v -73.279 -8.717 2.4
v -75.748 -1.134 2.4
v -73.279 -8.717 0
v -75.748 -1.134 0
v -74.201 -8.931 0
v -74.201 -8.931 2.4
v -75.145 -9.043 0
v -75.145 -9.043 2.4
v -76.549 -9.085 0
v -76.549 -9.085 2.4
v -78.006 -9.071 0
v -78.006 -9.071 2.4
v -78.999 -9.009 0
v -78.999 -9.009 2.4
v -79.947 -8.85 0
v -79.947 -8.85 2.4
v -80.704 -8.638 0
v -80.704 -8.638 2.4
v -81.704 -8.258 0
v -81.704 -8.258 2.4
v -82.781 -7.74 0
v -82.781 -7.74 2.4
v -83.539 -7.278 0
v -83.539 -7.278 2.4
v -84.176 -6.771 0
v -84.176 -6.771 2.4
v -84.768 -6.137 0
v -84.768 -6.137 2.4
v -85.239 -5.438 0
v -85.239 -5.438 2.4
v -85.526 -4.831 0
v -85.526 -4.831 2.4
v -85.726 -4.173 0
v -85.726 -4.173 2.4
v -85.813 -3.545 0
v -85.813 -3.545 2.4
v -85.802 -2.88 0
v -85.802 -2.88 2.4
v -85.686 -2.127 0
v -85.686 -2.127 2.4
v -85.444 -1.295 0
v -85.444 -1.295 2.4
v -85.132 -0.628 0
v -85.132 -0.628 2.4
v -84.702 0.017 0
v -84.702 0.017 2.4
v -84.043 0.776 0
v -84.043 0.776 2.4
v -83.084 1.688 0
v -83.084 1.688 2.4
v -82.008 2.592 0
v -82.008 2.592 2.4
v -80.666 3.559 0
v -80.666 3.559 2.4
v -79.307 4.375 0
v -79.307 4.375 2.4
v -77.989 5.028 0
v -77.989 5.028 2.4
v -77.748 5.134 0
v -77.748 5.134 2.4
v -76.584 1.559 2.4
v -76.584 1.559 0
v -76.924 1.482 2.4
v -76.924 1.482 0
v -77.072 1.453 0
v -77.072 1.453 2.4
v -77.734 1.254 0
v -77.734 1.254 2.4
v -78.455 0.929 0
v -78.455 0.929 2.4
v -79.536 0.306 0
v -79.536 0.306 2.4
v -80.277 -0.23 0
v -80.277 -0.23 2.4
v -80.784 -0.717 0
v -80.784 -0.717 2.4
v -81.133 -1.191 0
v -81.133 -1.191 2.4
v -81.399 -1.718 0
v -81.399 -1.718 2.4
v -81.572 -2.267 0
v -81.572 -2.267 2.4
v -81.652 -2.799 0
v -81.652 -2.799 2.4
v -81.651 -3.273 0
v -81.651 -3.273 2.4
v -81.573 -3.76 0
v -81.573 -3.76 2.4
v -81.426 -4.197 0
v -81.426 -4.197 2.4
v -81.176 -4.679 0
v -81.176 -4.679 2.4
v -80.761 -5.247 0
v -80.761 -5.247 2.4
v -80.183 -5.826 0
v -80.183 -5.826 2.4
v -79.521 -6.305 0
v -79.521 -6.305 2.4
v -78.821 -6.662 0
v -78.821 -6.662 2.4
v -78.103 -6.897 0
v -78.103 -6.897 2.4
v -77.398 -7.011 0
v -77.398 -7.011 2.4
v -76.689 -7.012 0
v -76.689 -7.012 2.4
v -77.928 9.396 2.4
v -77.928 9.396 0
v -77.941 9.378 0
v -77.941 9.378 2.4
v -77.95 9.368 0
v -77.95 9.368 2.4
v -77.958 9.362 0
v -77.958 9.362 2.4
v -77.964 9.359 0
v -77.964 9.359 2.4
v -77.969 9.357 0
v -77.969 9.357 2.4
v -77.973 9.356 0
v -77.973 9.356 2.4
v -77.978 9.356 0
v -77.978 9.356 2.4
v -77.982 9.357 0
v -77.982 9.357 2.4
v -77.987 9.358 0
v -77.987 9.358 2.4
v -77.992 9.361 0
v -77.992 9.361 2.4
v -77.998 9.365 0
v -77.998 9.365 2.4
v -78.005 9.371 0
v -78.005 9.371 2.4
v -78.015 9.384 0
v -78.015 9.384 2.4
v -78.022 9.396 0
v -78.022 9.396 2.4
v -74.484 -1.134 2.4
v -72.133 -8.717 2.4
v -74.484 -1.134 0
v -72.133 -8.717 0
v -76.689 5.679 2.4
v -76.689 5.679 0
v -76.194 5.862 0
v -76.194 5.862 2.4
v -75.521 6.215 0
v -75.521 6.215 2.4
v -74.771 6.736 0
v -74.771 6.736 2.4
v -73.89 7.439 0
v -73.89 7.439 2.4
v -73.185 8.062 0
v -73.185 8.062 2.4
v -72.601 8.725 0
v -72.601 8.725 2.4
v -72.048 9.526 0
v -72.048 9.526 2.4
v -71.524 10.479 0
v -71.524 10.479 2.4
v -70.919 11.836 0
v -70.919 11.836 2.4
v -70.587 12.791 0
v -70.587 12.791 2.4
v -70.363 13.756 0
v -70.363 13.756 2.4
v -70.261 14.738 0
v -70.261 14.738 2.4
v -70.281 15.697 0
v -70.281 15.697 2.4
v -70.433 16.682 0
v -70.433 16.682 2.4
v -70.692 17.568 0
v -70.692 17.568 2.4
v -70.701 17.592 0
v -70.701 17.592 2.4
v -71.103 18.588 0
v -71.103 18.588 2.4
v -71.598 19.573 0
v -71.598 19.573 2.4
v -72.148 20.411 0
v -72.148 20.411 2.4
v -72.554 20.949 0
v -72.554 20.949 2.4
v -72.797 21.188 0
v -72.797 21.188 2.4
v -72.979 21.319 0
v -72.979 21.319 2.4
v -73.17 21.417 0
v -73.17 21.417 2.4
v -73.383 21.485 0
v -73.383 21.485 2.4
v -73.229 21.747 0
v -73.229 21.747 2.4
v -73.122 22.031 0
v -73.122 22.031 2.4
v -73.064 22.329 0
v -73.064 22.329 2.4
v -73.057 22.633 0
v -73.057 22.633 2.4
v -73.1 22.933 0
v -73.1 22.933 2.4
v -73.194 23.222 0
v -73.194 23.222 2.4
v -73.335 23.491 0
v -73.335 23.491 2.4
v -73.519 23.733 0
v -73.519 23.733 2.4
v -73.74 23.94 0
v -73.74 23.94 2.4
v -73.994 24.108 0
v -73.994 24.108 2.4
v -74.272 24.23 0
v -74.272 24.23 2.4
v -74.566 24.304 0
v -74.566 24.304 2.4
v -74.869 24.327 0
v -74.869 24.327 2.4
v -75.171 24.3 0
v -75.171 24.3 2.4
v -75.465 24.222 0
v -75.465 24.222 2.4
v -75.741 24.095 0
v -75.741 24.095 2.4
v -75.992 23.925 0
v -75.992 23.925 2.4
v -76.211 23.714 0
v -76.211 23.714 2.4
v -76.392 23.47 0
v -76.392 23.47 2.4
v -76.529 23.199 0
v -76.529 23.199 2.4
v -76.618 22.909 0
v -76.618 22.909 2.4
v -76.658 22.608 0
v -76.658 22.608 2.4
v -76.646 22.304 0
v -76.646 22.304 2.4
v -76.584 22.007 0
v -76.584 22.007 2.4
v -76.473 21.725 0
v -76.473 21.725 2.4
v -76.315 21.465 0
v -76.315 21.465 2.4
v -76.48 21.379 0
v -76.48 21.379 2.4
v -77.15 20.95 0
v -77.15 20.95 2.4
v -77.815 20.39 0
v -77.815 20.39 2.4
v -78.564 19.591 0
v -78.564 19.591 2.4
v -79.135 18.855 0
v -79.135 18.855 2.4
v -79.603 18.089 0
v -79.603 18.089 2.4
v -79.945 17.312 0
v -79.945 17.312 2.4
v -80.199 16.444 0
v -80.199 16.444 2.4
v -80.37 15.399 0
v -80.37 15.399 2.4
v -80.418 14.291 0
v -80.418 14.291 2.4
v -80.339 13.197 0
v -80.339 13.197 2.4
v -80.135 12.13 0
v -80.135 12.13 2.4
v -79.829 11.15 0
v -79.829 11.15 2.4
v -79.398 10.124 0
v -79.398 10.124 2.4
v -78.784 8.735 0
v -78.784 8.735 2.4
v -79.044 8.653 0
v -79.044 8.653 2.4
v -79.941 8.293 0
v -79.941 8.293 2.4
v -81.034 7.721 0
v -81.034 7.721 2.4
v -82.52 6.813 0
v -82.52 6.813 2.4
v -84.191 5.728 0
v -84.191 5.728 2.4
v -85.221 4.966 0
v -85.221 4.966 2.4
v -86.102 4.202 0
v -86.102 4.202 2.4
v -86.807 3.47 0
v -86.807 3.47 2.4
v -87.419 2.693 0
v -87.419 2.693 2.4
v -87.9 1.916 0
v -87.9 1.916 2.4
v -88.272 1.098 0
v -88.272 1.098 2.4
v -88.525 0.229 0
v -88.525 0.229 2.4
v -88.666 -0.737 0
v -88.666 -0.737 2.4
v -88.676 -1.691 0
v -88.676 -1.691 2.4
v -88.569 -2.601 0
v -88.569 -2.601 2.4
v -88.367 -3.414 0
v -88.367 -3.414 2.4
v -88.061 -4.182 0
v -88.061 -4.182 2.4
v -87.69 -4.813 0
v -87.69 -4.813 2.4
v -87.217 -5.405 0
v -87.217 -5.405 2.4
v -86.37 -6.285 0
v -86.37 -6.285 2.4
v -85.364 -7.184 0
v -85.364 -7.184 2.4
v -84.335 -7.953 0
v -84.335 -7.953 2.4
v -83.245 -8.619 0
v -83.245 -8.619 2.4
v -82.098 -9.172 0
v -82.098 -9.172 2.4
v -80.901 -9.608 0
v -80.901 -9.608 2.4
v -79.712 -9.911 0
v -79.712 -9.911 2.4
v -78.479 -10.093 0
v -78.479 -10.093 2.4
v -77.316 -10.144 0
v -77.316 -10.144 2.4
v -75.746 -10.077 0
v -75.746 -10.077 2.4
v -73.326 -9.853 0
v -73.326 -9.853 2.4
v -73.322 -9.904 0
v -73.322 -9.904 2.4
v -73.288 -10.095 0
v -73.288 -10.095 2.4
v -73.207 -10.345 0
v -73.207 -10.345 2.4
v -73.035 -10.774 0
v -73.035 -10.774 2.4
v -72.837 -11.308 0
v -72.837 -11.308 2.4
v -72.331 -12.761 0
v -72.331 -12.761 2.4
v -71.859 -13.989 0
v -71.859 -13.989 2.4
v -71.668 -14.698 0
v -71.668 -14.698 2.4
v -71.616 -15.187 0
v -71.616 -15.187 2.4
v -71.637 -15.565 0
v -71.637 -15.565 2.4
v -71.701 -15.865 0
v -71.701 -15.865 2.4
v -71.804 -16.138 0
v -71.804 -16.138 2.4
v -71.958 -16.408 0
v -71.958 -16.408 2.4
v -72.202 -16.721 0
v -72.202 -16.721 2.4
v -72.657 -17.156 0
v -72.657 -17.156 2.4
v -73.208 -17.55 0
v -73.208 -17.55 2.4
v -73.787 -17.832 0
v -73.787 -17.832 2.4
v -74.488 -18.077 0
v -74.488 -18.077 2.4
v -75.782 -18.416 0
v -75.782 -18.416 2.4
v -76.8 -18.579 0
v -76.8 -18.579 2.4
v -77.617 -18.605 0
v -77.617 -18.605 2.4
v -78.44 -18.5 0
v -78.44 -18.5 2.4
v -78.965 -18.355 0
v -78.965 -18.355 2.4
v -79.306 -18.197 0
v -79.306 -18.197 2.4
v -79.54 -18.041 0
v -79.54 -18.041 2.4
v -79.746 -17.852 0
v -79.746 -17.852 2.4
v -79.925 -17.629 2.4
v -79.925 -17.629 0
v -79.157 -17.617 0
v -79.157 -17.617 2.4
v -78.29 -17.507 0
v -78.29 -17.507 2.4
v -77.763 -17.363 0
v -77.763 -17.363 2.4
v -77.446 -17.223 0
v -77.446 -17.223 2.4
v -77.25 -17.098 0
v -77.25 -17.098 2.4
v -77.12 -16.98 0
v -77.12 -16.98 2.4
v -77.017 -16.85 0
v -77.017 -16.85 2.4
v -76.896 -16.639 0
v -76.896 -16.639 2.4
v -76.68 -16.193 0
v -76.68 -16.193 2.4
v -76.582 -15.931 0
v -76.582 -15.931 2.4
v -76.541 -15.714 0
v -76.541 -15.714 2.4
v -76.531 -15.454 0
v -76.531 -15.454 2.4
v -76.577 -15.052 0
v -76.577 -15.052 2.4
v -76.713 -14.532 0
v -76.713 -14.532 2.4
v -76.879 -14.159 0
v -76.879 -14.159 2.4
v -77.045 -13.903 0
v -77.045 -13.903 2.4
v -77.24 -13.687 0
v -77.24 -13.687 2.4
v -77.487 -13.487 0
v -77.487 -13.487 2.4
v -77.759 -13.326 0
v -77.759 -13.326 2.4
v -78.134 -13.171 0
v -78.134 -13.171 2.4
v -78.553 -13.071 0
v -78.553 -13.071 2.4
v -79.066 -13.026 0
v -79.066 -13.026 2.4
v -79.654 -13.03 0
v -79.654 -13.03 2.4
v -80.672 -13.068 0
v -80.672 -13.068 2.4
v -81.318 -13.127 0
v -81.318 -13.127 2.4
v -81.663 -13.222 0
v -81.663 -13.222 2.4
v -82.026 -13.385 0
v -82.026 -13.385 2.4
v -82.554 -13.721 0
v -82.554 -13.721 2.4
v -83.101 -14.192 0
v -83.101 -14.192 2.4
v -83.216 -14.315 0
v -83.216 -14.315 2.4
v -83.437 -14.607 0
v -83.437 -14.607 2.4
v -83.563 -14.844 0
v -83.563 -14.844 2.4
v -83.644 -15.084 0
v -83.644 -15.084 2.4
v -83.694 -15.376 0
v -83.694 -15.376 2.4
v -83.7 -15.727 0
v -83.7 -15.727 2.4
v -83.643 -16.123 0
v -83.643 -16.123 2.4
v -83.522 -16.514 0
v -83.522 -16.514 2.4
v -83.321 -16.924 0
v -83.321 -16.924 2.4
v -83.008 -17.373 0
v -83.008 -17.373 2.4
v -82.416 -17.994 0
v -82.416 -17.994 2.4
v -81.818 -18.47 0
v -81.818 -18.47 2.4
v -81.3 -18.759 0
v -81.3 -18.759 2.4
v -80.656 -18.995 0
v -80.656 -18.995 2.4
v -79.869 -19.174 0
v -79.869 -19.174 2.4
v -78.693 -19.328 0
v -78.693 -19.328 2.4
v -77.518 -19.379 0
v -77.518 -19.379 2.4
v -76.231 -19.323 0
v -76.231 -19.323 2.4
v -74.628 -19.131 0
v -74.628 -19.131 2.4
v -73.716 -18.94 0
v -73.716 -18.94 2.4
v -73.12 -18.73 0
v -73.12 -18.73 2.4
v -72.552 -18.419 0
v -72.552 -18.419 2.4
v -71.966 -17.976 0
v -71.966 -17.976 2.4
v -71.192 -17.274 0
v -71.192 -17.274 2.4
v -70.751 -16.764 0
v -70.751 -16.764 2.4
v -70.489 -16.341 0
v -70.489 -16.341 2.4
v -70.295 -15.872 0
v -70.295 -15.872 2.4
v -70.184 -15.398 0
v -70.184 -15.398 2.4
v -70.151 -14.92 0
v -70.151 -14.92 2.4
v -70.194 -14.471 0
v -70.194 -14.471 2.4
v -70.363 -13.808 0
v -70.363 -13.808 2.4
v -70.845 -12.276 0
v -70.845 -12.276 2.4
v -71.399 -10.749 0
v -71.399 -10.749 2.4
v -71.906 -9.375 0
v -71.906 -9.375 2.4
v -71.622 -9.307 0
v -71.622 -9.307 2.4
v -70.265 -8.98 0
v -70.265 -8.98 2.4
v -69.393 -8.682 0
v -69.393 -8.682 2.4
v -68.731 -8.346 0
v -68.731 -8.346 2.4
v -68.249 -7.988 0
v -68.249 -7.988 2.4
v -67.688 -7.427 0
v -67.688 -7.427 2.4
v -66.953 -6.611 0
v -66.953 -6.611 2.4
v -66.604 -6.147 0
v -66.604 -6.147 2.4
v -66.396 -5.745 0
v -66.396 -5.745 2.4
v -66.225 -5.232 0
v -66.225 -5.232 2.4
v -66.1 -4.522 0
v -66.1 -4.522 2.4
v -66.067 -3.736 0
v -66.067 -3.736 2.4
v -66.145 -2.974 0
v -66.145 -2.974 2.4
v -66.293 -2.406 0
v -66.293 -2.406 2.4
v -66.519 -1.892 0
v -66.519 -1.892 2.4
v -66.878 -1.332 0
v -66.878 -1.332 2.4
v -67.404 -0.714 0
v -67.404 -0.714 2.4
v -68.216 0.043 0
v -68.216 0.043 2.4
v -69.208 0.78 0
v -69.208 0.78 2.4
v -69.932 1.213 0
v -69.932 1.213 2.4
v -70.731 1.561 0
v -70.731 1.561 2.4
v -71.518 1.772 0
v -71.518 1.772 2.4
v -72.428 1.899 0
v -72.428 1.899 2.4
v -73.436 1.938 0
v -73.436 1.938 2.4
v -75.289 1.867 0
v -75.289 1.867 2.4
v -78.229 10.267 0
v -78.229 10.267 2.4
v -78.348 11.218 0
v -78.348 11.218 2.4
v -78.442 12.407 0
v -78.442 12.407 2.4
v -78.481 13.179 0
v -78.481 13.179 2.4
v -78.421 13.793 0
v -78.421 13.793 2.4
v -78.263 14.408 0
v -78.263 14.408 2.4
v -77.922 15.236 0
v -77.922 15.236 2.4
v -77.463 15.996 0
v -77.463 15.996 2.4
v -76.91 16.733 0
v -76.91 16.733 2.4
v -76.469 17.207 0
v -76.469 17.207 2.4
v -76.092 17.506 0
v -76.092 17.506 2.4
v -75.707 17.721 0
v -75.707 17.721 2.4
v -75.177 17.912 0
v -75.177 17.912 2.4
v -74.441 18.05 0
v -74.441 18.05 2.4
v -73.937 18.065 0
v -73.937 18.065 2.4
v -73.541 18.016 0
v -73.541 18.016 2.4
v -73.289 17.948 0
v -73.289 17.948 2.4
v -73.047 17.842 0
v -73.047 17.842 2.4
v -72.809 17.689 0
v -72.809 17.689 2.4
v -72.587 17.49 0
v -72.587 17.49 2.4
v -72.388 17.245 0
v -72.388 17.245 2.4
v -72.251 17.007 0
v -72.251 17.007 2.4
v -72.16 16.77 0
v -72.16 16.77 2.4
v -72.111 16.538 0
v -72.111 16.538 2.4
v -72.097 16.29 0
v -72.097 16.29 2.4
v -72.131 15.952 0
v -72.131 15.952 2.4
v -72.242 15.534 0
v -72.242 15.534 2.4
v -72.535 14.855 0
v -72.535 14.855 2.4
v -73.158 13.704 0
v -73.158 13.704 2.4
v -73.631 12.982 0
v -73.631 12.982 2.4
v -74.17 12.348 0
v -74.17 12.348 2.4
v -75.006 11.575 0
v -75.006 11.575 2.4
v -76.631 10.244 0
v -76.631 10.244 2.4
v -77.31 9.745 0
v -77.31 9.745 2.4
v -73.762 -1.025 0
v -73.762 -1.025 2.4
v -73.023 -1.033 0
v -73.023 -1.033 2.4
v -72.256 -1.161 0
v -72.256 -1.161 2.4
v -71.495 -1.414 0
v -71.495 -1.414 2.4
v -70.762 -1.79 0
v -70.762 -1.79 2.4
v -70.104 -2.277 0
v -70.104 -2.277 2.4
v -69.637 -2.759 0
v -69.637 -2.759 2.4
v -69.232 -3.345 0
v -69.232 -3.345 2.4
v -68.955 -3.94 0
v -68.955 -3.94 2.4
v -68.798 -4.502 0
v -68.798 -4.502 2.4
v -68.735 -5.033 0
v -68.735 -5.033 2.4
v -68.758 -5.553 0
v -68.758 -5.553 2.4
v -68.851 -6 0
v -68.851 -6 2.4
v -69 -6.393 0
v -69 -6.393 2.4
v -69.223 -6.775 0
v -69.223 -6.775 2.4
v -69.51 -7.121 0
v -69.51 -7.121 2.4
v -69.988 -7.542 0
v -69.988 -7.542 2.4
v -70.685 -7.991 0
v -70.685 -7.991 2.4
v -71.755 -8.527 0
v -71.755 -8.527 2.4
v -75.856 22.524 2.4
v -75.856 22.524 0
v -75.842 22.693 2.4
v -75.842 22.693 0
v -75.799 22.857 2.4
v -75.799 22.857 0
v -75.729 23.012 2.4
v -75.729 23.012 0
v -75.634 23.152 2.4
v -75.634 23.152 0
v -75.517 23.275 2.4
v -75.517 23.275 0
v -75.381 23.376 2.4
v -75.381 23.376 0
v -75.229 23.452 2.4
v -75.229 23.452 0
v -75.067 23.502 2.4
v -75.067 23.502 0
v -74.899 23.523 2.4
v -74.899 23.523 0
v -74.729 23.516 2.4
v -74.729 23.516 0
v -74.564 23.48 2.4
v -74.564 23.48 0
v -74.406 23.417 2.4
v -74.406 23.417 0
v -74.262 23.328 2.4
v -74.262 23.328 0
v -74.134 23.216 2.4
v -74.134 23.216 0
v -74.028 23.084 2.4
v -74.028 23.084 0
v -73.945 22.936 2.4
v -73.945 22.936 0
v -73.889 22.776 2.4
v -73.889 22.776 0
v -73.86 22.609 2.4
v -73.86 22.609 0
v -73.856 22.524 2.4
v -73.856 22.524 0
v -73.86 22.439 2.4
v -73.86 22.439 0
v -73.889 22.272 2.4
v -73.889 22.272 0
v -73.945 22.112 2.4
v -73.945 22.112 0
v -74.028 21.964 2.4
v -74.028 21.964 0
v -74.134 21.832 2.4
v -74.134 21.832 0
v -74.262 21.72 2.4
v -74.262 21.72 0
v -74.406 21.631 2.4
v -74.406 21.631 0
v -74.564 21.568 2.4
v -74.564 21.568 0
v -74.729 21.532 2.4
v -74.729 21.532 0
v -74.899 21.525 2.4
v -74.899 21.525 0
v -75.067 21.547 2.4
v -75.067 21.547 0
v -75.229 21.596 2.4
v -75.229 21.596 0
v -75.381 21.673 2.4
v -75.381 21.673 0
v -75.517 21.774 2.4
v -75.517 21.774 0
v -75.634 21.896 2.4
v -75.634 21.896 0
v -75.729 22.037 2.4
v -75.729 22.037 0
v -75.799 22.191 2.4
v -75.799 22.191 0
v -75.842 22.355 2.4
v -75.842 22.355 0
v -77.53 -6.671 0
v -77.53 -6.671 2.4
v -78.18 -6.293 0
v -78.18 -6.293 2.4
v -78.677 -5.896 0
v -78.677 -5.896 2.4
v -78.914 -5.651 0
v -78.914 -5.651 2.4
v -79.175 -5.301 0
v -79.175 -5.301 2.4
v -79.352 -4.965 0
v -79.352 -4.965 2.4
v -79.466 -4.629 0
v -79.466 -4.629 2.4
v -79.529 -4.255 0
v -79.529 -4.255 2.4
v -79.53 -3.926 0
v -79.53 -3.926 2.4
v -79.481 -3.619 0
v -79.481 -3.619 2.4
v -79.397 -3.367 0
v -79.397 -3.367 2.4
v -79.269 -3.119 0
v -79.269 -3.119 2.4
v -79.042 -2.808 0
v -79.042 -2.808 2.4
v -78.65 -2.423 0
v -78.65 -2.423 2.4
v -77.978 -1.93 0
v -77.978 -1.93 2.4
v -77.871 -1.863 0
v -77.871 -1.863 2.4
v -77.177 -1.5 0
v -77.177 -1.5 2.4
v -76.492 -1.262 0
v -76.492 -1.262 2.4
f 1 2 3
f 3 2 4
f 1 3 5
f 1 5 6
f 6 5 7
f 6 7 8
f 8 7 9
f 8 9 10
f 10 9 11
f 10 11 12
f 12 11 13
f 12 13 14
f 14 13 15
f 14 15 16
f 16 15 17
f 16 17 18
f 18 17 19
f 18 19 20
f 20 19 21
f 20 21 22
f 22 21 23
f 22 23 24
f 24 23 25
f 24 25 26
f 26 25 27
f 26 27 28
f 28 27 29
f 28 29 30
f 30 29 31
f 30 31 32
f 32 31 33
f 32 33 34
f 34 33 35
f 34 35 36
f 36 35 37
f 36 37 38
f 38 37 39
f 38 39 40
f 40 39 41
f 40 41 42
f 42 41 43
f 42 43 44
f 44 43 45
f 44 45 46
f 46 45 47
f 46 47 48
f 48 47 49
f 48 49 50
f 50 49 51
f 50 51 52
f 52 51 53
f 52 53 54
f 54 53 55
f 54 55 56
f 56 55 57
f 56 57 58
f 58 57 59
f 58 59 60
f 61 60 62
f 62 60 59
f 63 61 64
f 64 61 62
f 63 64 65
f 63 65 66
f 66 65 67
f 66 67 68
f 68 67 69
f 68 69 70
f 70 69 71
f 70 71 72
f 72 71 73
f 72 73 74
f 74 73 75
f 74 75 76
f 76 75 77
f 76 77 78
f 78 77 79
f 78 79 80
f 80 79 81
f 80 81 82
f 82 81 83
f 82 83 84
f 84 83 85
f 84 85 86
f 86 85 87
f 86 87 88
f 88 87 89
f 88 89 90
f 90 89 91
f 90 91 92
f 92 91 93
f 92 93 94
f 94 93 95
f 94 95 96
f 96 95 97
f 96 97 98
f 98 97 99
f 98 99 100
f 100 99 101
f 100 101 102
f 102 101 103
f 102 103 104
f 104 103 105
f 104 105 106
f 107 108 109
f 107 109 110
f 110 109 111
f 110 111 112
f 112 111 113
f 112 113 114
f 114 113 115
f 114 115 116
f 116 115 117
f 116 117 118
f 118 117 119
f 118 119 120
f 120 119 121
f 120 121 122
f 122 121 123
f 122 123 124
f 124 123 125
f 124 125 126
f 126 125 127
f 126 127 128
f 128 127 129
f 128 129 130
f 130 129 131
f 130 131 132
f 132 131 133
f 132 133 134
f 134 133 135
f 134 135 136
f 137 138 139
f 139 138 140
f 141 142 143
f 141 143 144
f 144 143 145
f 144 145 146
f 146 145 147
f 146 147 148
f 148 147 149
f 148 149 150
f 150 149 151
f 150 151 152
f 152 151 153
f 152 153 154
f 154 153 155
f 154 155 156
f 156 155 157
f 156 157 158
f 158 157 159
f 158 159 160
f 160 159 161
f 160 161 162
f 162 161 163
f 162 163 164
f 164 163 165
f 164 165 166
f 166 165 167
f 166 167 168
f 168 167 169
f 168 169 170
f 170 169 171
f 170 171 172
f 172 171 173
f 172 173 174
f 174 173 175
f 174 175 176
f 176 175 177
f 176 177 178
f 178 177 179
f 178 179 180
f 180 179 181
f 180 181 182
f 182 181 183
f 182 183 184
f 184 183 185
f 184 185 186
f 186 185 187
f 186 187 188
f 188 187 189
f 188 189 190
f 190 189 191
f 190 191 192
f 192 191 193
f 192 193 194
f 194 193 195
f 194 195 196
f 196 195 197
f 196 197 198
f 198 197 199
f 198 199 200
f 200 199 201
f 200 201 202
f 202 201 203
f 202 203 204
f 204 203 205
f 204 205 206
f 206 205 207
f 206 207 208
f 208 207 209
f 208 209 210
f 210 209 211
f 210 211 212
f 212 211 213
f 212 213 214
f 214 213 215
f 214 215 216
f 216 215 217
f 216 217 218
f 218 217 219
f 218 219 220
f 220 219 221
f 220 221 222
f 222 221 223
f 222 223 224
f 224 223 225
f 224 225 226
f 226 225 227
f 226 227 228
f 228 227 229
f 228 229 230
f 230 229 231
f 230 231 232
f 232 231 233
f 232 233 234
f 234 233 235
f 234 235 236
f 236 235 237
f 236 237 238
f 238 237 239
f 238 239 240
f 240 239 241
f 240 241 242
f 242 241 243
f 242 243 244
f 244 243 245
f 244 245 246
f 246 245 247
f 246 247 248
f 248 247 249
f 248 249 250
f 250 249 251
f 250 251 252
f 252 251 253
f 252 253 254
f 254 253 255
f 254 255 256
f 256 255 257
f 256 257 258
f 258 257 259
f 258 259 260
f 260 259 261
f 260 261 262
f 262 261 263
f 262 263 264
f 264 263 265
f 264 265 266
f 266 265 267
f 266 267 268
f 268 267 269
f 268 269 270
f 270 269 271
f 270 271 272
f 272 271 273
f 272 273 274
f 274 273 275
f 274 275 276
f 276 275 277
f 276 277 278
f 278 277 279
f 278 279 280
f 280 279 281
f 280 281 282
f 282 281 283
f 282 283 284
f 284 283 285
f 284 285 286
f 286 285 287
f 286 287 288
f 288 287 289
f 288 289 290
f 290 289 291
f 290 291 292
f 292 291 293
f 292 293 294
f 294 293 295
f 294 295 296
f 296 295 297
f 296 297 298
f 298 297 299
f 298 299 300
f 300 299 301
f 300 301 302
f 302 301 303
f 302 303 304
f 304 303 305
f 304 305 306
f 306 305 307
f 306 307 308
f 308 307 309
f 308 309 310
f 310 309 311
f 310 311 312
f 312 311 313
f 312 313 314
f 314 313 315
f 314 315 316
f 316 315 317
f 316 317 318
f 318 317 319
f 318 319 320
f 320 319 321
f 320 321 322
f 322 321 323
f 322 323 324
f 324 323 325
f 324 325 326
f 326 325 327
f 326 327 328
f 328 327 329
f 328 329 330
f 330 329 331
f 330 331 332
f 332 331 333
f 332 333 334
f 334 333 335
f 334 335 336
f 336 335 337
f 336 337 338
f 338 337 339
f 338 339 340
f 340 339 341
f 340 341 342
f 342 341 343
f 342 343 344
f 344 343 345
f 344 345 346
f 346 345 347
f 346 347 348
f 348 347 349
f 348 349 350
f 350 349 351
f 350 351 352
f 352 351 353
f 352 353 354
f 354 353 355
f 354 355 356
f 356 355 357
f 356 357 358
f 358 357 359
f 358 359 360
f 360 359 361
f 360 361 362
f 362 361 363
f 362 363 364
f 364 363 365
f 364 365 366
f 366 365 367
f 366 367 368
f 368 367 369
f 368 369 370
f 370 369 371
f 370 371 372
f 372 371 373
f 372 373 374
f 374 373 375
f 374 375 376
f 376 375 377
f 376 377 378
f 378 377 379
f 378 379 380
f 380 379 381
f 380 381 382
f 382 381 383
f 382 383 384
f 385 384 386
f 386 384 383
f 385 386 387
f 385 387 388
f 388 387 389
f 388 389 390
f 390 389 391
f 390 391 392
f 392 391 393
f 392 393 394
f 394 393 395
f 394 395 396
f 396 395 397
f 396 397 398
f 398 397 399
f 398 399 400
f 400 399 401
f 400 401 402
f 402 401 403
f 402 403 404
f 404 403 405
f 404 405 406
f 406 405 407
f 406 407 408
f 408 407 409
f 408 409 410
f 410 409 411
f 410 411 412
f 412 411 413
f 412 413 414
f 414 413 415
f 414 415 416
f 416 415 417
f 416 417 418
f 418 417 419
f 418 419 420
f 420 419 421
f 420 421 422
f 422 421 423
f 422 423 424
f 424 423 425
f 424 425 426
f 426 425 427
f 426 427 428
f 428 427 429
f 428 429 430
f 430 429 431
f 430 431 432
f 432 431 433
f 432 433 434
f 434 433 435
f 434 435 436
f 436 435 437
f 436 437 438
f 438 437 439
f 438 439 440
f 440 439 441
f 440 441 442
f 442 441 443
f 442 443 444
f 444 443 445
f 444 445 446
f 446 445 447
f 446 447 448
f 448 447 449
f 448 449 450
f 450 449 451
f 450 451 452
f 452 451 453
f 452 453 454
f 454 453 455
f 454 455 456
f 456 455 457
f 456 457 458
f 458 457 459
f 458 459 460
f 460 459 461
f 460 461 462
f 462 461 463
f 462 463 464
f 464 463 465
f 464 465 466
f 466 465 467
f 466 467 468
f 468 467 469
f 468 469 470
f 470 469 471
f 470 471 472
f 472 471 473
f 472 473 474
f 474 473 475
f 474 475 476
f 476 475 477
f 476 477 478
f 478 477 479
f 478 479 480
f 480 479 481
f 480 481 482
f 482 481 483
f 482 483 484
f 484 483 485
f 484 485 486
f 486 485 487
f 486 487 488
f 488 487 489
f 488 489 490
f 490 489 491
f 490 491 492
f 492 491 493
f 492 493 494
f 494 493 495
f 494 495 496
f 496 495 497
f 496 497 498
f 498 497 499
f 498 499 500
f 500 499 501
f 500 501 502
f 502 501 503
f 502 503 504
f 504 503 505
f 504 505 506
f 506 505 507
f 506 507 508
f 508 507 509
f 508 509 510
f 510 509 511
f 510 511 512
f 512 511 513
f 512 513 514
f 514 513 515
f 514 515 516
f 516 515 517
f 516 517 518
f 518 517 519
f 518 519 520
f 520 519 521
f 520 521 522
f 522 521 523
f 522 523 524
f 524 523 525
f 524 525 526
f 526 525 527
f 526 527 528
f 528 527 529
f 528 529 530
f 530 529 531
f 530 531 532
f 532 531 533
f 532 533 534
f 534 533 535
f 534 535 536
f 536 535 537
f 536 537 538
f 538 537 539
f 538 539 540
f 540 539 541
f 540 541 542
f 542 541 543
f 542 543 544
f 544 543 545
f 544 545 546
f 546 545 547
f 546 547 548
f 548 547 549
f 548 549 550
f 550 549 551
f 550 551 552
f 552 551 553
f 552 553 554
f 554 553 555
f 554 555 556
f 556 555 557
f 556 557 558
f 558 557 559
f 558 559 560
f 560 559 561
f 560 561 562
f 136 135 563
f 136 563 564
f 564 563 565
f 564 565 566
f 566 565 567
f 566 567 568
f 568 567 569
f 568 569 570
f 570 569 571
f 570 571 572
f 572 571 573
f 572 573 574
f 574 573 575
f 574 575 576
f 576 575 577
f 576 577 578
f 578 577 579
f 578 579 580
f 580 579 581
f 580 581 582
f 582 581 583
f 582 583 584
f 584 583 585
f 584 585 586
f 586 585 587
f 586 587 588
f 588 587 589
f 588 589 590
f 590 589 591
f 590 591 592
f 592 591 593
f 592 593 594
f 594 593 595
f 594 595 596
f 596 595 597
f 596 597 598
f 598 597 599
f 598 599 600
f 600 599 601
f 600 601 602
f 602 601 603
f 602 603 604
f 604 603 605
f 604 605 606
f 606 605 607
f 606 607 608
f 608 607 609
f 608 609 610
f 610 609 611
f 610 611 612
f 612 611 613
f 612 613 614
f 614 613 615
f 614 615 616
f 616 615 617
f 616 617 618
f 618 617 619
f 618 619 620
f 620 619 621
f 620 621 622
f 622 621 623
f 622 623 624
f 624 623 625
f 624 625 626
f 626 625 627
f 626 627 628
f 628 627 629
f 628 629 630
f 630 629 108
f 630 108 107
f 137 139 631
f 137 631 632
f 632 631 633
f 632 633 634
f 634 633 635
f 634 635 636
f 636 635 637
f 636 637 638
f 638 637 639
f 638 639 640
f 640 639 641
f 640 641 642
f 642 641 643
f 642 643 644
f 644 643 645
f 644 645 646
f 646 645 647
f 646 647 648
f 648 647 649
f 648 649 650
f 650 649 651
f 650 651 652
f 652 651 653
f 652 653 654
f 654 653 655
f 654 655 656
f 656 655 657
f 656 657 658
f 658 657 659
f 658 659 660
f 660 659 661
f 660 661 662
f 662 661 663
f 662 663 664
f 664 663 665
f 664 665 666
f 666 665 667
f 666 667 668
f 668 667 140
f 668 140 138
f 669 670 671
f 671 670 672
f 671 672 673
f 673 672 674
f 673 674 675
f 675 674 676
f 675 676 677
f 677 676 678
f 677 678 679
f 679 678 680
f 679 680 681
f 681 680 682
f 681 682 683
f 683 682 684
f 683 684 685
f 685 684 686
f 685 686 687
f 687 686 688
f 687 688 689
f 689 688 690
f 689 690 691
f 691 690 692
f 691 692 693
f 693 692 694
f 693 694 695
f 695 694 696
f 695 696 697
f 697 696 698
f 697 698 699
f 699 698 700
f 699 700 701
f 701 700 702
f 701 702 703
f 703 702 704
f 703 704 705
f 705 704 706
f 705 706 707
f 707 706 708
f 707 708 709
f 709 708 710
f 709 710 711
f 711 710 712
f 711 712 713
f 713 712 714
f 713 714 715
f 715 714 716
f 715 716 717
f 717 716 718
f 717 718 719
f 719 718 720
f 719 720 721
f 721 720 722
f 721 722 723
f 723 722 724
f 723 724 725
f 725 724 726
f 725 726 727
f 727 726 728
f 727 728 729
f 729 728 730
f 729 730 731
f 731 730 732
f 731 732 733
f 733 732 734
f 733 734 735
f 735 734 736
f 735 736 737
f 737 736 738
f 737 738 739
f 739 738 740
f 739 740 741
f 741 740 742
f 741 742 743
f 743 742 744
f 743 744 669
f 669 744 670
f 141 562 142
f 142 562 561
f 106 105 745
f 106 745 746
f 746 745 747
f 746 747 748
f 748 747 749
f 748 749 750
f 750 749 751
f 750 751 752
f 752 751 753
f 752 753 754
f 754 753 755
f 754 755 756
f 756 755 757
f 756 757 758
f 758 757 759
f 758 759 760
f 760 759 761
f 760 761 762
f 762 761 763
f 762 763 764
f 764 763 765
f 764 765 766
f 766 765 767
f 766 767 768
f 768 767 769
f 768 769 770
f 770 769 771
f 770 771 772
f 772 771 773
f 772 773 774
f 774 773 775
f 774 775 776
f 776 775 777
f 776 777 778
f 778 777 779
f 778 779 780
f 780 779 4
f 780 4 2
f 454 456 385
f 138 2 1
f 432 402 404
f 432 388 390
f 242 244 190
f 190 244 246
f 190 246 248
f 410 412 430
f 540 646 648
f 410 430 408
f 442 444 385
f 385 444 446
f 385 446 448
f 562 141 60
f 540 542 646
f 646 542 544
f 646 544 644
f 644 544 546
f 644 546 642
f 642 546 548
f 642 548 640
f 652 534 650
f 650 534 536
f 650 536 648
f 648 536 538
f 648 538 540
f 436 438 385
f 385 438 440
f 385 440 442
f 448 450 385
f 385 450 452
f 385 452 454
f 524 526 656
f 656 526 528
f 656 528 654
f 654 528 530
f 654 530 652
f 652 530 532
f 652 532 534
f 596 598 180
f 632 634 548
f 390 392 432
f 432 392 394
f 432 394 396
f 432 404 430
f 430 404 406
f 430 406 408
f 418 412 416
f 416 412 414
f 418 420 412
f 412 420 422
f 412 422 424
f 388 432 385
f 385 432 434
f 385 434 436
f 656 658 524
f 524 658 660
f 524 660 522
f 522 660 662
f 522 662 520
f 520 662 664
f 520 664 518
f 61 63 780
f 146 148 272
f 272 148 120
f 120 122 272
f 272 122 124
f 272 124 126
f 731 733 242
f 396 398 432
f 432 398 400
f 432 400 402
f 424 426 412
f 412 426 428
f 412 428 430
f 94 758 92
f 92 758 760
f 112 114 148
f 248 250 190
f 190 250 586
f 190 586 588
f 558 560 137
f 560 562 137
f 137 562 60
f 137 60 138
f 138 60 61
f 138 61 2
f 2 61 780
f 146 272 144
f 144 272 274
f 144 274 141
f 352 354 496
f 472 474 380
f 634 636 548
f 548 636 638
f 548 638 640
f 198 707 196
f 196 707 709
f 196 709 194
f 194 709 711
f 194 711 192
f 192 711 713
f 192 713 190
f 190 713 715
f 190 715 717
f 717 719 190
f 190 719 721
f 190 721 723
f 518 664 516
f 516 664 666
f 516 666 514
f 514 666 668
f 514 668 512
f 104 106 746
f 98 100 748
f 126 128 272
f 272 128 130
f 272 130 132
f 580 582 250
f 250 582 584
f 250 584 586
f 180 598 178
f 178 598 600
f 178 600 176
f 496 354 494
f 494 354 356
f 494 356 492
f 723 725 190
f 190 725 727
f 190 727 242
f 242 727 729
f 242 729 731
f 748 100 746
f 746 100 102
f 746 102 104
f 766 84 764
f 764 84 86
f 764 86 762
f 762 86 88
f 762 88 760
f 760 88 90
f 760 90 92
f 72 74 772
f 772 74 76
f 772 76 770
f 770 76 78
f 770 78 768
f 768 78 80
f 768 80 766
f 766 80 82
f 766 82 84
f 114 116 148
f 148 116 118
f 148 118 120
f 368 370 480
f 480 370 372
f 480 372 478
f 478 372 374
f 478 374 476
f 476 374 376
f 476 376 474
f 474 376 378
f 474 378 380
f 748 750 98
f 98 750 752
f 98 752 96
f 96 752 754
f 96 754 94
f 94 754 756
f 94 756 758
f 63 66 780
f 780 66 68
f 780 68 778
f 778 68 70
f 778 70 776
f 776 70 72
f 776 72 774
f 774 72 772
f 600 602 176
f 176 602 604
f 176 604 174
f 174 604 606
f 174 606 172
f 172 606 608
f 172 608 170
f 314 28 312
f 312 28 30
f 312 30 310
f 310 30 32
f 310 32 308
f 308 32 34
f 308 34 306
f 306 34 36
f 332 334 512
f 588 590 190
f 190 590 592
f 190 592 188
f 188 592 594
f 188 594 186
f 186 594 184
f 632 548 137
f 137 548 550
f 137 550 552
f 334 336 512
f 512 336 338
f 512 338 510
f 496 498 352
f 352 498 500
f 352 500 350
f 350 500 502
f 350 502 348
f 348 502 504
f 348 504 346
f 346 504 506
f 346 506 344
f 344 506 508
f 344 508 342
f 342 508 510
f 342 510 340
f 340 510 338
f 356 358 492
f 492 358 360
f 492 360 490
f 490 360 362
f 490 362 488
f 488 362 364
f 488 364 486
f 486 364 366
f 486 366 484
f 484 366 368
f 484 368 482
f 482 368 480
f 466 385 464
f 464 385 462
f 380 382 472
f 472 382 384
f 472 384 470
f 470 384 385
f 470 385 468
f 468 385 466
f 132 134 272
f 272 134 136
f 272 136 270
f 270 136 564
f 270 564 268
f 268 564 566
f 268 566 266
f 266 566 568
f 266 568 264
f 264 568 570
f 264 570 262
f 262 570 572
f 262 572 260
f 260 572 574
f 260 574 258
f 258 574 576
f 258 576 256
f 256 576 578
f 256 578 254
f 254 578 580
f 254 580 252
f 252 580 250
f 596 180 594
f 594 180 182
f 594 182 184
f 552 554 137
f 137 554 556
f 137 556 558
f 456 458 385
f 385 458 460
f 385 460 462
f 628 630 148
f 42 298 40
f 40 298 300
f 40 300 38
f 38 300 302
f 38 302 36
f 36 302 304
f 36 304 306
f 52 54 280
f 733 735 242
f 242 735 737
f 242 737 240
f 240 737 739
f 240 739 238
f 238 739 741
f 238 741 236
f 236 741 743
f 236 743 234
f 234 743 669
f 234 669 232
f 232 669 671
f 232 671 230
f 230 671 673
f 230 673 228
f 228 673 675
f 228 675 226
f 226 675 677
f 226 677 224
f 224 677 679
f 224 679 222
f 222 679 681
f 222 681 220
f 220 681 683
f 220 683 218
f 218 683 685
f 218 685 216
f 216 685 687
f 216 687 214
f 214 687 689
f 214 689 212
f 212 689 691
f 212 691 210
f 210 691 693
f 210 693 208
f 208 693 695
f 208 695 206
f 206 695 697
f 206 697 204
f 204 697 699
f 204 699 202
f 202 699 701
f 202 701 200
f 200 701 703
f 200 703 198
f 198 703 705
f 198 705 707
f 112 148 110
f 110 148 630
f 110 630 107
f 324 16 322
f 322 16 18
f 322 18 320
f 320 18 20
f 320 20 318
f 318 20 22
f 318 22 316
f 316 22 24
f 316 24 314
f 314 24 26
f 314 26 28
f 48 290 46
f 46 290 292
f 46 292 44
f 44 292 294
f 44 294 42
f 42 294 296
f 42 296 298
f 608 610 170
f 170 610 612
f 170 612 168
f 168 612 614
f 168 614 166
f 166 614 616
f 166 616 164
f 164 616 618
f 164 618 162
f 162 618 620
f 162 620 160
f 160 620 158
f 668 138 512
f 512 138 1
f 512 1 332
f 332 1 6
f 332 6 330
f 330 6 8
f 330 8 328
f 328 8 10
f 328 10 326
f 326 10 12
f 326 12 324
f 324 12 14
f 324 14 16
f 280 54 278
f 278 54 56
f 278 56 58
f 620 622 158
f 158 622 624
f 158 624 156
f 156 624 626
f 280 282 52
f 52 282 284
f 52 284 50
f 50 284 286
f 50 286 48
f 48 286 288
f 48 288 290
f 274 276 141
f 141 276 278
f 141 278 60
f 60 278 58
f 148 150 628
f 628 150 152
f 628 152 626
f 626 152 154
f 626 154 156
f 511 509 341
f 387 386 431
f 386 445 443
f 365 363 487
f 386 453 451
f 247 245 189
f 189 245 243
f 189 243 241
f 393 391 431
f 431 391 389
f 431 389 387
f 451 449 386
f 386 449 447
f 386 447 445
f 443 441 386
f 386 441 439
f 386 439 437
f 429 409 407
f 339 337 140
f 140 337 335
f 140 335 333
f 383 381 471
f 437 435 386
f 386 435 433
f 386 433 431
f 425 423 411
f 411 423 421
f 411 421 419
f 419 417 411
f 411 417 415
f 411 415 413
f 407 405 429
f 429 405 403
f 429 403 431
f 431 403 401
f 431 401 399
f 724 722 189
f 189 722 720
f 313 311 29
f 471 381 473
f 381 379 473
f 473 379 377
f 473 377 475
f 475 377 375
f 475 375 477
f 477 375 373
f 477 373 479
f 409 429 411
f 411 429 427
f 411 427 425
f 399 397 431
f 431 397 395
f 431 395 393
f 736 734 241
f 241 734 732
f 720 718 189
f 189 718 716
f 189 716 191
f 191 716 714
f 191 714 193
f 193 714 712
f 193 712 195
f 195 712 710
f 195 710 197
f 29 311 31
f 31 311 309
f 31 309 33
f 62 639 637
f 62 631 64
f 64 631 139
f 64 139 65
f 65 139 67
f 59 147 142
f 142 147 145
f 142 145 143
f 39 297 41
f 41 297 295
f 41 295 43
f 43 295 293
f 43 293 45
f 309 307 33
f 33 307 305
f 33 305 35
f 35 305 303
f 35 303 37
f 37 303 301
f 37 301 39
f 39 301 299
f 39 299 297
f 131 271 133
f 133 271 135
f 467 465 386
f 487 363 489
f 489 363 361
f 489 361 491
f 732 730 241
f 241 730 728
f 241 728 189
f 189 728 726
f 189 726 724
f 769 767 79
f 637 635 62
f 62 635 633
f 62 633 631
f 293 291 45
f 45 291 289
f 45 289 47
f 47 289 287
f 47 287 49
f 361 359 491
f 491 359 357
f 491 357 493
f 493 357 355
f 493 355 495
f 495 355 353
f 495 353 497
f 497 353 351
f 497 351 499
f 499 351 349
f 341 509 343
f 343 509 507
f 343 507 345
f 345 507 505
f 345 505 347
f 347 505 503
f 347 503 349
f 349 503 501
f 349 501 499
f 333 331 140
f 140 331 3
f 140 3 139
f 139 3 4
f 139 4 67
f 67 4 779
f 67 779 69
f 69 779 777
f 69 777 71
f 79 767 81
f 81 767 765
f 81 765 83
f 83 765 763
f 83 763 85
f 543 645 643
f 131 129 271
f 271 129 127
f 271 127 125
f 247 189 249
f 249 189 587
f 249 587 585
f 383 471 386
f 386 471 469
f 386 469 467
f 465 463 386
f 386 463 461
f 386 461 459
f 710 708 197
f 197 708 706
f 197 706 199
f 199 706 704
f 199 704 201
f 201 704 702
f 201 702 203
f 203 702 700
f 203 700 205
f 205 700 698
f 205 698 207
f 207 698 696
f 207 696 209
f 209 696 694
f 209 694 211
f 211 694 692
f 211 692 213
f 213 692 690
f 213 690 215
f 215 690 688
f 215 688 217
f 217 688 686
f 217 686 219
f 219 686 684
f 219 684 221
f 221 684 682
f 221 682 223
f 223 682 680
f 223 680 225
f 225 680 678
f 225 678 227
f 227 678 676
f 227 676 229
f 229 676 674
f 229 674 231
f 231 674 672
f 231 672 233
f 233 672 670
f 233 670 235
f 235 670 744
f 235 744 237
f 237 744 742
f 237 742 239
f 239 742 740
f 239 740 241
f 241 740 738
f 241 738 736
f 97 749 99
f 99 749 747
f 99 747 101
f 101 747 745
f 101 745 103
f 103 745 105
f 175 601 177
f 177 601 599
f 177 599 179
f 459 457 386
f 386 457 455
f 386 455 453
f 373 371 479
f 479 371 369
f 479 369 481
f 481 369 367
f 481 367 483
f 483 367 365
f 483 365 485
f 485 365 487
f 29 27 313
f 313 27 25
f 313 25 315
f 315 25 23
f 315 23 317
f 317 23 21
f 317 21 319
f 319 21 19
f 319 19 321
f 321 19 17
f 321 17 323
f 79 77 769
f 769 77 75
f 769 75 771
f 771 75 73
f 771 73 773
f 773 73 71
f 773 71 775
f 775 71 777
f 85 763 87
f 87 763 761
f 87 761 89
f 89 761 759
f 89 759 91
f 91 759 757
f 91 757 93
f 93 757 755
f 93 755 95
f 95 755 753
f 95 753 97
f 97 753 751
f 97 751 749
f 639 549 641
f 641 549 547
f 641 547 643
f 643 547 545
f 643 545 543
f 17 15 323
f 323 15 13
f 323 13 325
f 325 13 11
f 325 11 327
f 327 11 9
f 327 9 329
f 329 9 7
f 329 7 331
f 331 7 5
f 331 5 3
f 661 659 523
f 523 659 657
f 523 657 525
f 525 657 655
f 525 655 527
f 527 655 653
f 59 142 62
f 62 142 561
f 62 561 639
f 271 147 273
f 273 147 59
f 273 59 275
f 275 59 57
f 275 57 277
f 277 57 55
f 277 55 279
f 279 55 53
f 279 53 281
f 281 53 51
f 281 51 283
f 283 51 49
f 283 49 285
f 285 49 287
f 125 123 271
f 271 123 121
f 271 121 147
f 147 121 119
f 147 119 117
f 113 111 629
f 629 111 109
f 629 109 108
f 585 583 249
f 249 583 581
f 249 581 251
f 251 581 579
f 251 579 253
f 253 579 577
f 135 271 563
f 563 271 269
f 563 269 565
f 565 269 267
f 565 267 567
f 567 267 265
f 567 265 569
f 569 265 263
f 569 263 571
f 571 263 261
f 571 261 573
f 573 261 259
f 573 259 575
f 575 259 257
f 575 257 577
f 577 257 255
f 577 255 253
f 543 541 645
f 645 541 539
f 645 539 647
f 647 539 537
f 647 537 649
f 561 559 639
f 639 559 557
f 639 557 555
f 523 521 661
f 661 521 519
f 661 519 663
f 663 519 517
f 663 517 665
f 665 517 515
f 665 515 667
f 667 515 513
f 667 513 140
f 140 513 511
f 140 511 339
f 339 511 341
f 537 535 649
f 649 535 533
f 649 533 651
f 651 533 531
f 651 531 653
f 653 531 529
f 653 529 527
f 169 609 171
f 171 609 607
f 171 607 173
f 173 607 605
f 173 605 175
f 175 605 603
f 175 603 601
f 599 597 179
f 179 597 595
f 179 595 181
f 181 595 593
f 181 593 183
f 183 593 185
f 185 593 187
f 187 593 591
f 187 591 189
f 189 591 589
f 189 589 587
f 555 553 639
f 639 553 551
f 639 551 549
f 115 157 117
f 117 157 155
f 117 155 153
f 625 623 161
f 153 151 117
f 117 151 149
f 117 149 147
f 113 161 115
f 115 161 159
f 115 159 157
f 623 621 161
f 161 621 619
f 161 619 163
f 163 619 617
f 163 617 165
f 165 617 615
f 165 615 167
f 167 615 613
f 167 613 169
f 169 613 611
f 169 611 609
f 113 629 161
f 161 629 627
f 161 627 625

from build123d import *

# Parameters (mm, degrees)
CROQUIS1_R              = 1
SALIENTE_EXTRUIR1_DEPTH = 2.4


with BuildPart() as part:
    # Croquis1 → Saliente-Extruir1 (new body)
    with BuildSketch(Plane.XY):
        with BuildLine():
            add(Edge.make_bspline(
                [(-73.382843904, 21.485172649), (-72.816279322, 21.352562277), (-72.290048161, 20.617939926), (-71.563359458, 19.572554368), (-70.955369846, 18.303271377), (-70.180325761, 16.279733813), (-70.210087208, 13.6244299), (-71.118438702, 11.274052597), (-72.034700283, 9.43128208), (-73.060953827, 8.093199889), (-74.176463418, 7.211487575), (-75.245307097, 6.341435028), (-76.105343924, 5.854934057), (-76.688929455, 5.678784709)],
                knots=[0, 0, 0, 0, 0.082720072, 0.13560082, 0.197595917, 0.299487219, 0.46892434, 0.591754444, 0.687028642, 0.786865301, 0.848882337, 0.906336095, 1, 1, 1, 1], degree=3))
            Line((-76.688929455, 5.678784709), (-75.288653219, 1.867168619))
            add(Edge.make_bspline(
                [(-75.288653219, 1.867168619), (-74.468411952, 1.908252334), (-72.872577878, 2.015461097), (-70.631463745, 1.675125729), (-68.810384606, 0.565616098), (-67.389820174, -0.62554349), (-66.153734293, -2.256742458), (-65.96167945, -4.235010195), (-66.365441771, -6.009358939), (-67.459170254, -7.148174835), (-68.270466433, -8.123187694), (-69.854703917, -8.959771389), (-71.054207735, -9.166320913), (-71.906140878, -9.374564164)],
                knots=[0, 0, 0, 0, 0.11762295, 0.230289999, 0.317392698, 0.419586807, 0.496456837, 0.603597023, 0.693697186, 0.746523704, 0.827441455, 0.873617317, 1, 1, 1, 1], degree=3))
            add(Edge.make_bspline(
                [(-71.906140878, -9.374564164), (-71.61278094, -10.266839308), (-71.036756395, -11.553098269), (-70.528271485, -13.35950605), (-70.000664218, -14.794214547), (-70.38948534, -16.535052776), (-71.615071455, -17.699585086), (-73.060823598, -18.884419966), (-74.955161604, -19.19978755), (-77.241867683, -19.438869557), (-79.443104395, -19.317828204), (-81.433845047, -18.830999441), (-82.464748145, -17.980329563), (-83.140965101, -17.252480478), (-83.593955092, -16.480808011), (-83.752954974, -15.617546025), (-83.608641776, -14.78603997), (-83.194756323, -14.263514026), (-82.702884853, -13.823597136), (-82.179262793, -13.441681166), (-81.432137939, -13.092921965), (-80.517138878, -13.064254835), (-79.492506239, -13.016435402), (-78.279139352, -13.020538301), (-77.016213715, -13.666355282), (-76.555165276, -14.862084339), (-76.488557331, -15.83888893), (-76.815315899, -16.458860603), (-77.065125243, -17.020204619), (-77.742898732, -17.401740743), (-78.706718276, -17.603569236), (-79.482690885, -17.645040657), (-79.925056233, -17.629067046)],
                knots=[0, 0, 0, 0, 0.074805241, 0.11132212, 0.149630483, 0.194577694, 0.242981274, 0.281554535, 0.341328008, 0.390461965, 0.465398944, 0.516027146, 0.549472808, 0.569857733, 0.595053118, 0.619442754, 0.638197686, 0.660324416, 0.670723298, 0.690791225, 0.711746454, 0.73503389, 0.762613743, 0.793710312, 0.830998489, 0.86650762, 0.890979006, 0.905817433, 0.921675854, 0.938569682, 0.964778851, 1, 1, 1, 1], degree=3))
            add(Edge.make_bspline(
                [(-79.745792871, -17.851802825), (-79.925056233, -17.629067046)],
                knots=[0, 0, 1, 1], degree=1))
            add(Edge.make_bspline(
                [(-79.745792871, -17.851802825), (-79.377728082, -18.250457197), (-78.598905688, -18.510175961), (-77.445529422, -18.641537901), (-76.334832164, -18.54753779), (-75.193190702, -18.291470417), (-74.157420098, -17.982791531), (-73.328642935, -17.655936573), (-72.674800508, -17.19664297), (-72.136943705, -16.684677178), (-71.725059461, -16.078199587), (-71.557910168, -15.250749341), (-71.729283252, -14.277038523), (-72.075975491, -13.411558538), (-72.37751376, -12.660176729), (-72.546628338, -12.092589849), (-72.748229841, -11.588348302), (-72.895787934, -11.112644121), (-73.065295019, -10.700797712), (-73.235237824, -10.283342723), (-73.317254276, -10.026629889), (-73.326078886, -9.853276729)],
                knots=[0, 0, 0, 0, 0.100297216, 0.155435072, 0.224439636, 0.315020887, 0.381826218, 0.433978194, 0.486800826, 0.535484251, 0.577523687, 0.626710452, 0.694737543, 0.765895596, 0.807411146, 0.851576548, 0.88054523, 0.912596844, 0.948032108, 0.966788769, 1, 1, 1, 1], degree=3))
            add(Edge.make_bspline(
                [(-73.326078886, -9.853276729), (-74.979679959, -9.995751786), (-78.452282633, -10.49535985), (-83.388178533, -8.914488142), (-86.275432814, -6.495055205), (-87.957194856, -4.564365563), (-88.570288982, -2.996611158), (-88.775793899, -1.013821722), (-88.306004497, 1.729575325), (-85.949537881, 4.676575), (-82.425763739, 6.869714587), (-80.045029758, 8.359671299), (-78.783962186, 8.735087678)],
                knots=[0, 0, 0, 0, 0.144810891, 0.29982304, 0.43227727, 0.467632746, 0.520861501, 0.574899367, 0.63945409, 0.757272263, 0.88708928, 1, 1, 1, 1], degree=3))
            add(Edge.make_bspline(
                [(-78.783962186, 8.735087678), (-79.148845445, 9.634457766), (-80.225036896, 11.646609291), (-80.612874405, 14.950152713), (-79.907852199, 17.82628115), (-78.379717416, 19.921328754), (-77.201516961, 21.020487171), (-76.3154098, 21.464690957)],
                knots=[0, 0, 0, 0, 0.201335738, 0.468683326, 0.668300446, 0.798365415, 1, 1, 1, 1], degree=3))
            ThreePointArc((-76.3154098, 21.464690957), (-74.869048258, 24.327275938), (-73.382843904, 21.485172649))
        make_face()
        with Locations((-74.856455338, 22.524223385)):
            Circle(CROQUIS1_R, mode=Mode.SUBTRACT)
        with BuildLine():
            Line((-74.484460646, -1.133595475), (-72.133027249, -8.716968179))
            add(Edge.make_bspline(
                [(-74.484460646, -1.133595475), (-73.283378869, -0.850339229), (-71.440115738, -1.186045151), (-69.63352513, -2.610213082), (-68.835374903, -3.973046003), (-68.644563627, -5.376781633), (-69.097791243, -6.878034458), (-70.443842904, -7.955321849), (-71.594543517, -8.436745129), (-72.133027249, -8.716968179)],
                knots=[0, 0, 0, 0, 0.278394154, 0.399126556, 0.515243262, 0.629976033, 0.711946034, 0.862107141, 1, 1, 1, 1], degree=3))
        make_face(mode=Mode.SUBTRACT)
        with BuildLine():
            add(Edge.make_bspline(
                [(-77.928016672, 9.39589872), (-77.977009898, 9.316591026), (-78.022202288, 9.39589872)],
                knots=[0, 0, 0, 1, 1, 1], degree=2))
            add(Edge.make_bspline(
                [(-78.022202288, 9.39589872), (-78.112248491, 9.743130089), (-78.284610236, 10.407782258), (-78.36421323, 11.409395561), (-78.43433762, 12.340152669), (-78.512865884, 13.222993811), (-78.400129242, 13.997240727), (-78.145886099, 14.774699767), (-77.782315961, 15.558796545), (-77.239268592, 16.313589804), (-76.698081348, 17.018136895), (-75.948448577, 17.679765585), (-74.922434231, 18.019394979), (-73.923097777, 18.108525469), (-72.826532687, 17.872003144), (-72.062827891, 16.965972459), (-72.102821748, 15.783989767), (-72.52046451, 14.856380567), (-73.10790887, 13.752968837), (-73.778471189, 12.706556273), (-74.678093213, 11.851215915), (-75.618461258, 11.048901475), (-76.628439152, 10.234767882), (-77.424220679, 9.64031082), (-77.86765592, 9.425182197), (-77.928016672, 9.39589872)],
                knots=[0, 0, 0, 0, 0.046234465, 0.088499601, 0.129376126, 0.166981464, 0.202560649, 0.229435641, 0.272508236, 0.313509199, 0.349201554, 0.387286028, 0.440602524, 0.485479344, 0.515571404, 0.583511224, 0.614581517, 0.664465849, 0.712996668, 0.776704411, 0.823500625, 0.87268466, 0.936376551, 0.991339526, 1, 1, 1, 1], degree=3))
        make_face(mode=Mode.SUBTRACT)
        with BuildLine():
            Line((-75.748356097, -1.133595475), (-73.27935103, -8.716968179))
            add(Edge.make_bspline(
                [(-73.27935103, -8.716968179), (-74.54403941, -9.099328125), (-76.597852728, -9.085833404), (-79.644615755, -9.068104931), (-81.932302943, -8.226273805), (-83.957404242, -7.110551081), (-85.273526187, -5.621380732), (-85.914909067, -3.853044747), (-85.759925302, -2.201384209), (-85.282619327, -0.736042917), (-84.392643233, 0.456217849), (-83.27080941, 1.539666913), (-81.207549469, 3.314419204), (-79.282403907, 4.472508042), (-77.747782265, 5.134297209)],
                knots=[0, 0, 0, 0, 0.140602397, 0.223478455, 0.328347819, 0.401004637, 0.472812394, 0.539192635, 0.598886041, 0.649529088, 0.70484218, 0.758150444, 0.818924333, 1, 1, 1, 1], degree=3))
            Line((-77.747782265, 5.134297209), (-76.583774396, 1.559130182))
            add(Edge.make_bspline(
                [(-76.583774396, 1.559130182), (-76.924072795, 1.482374179)],
                knots=[0, 0, 1, 1], degree=1))
            add(Edge.make_bspline(
                [(-76.688929455, -7.012178967), (-77.779962606, -7.101137668), (-79.354199759, -6.611511351), (-80.90825158, -5.19158372), (-81.724995865, -3.79418853), (-81.664670946, -2.150791159), (-80.978762427, -0.807113786), (-80.041282643, -0.014701178), (-79.235120023, 0.503541817), (-78.26137141, 1.051323643), (-77.500345123, 1.381049705), (-76.924072795, 1.482374179)],
                knots=[0, 0, 0, 0, 0.22965919, 0.335098219, 0.44680271, 0.56432709, 0.670369882, 0.760787276, 0.823624202, 0.875763436, 1, 1, 1, 1], degree=3))
            add(Edge.make_bspline(
                [(-76.688929455, -7.012178967), (-77.740334836, -6.669763356), (-79.493284206, -5.687330151), (-79.609713646, -3.253547132), (-78.048029923, -1.823215334), (-76.690901104, -1.21666721), (-75.748356097, -1.133595475)],
                knots=[0, 0, 0, 0, 0.383378054, 0.51727079, 0.709392586, 1, 1, 1, 1], degree=3))
        make_face(mode=Mode.SUBTRACT)
    extrude(amount=SALIENTE_EXTRUIR1_DEPTH)


solid = part.part
